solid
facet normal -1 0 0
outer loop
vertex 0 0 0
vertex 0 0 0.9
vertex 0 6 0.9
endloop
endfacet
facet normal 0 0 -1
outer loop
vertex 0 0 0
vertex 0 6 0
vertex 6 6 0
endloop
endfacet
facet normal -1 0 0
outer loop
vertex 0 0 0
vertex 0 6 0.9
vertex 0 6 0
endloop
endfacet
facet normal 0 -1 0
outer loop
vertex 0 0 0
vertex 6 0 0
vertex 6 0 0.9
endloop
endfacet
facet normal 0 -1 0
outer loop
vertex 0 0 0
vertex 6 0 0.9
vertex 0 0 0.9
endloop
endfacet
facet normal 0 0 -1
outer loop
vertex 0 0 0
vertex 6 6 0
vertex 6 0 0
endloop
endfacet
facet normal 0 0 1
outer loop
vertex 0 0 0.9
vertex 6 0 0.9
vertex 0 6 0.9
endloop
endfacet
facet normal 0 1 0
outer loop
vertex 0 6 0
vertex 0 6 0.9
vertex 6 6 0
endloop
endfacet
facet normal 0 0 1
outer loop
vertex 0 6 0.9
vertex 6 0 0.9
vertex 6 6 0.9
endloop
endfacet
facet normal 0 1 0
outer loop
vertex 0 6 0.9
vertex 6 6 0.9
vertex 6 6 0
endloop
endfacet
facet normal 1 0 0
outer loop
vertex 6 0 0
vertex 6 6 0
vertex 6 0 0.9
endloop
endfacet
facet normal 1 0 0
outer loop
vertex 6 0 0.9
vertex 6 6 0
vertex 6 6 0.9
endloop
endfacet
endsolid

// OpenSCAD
/* Warning, this is a very basic generator with a lot of approximation 
input data : [QFN, S3X, 6x6x0.9mm, 40, , D, C04-00118D]
generated by com.zoubworld.electronics.cad.model3d.Basic
Date : Sun Feb 15 10:50:48 CET 2026
*/

//body
color("black")
translate([0,0,0])
cube([6.0,6.0,0.9], center=false);
